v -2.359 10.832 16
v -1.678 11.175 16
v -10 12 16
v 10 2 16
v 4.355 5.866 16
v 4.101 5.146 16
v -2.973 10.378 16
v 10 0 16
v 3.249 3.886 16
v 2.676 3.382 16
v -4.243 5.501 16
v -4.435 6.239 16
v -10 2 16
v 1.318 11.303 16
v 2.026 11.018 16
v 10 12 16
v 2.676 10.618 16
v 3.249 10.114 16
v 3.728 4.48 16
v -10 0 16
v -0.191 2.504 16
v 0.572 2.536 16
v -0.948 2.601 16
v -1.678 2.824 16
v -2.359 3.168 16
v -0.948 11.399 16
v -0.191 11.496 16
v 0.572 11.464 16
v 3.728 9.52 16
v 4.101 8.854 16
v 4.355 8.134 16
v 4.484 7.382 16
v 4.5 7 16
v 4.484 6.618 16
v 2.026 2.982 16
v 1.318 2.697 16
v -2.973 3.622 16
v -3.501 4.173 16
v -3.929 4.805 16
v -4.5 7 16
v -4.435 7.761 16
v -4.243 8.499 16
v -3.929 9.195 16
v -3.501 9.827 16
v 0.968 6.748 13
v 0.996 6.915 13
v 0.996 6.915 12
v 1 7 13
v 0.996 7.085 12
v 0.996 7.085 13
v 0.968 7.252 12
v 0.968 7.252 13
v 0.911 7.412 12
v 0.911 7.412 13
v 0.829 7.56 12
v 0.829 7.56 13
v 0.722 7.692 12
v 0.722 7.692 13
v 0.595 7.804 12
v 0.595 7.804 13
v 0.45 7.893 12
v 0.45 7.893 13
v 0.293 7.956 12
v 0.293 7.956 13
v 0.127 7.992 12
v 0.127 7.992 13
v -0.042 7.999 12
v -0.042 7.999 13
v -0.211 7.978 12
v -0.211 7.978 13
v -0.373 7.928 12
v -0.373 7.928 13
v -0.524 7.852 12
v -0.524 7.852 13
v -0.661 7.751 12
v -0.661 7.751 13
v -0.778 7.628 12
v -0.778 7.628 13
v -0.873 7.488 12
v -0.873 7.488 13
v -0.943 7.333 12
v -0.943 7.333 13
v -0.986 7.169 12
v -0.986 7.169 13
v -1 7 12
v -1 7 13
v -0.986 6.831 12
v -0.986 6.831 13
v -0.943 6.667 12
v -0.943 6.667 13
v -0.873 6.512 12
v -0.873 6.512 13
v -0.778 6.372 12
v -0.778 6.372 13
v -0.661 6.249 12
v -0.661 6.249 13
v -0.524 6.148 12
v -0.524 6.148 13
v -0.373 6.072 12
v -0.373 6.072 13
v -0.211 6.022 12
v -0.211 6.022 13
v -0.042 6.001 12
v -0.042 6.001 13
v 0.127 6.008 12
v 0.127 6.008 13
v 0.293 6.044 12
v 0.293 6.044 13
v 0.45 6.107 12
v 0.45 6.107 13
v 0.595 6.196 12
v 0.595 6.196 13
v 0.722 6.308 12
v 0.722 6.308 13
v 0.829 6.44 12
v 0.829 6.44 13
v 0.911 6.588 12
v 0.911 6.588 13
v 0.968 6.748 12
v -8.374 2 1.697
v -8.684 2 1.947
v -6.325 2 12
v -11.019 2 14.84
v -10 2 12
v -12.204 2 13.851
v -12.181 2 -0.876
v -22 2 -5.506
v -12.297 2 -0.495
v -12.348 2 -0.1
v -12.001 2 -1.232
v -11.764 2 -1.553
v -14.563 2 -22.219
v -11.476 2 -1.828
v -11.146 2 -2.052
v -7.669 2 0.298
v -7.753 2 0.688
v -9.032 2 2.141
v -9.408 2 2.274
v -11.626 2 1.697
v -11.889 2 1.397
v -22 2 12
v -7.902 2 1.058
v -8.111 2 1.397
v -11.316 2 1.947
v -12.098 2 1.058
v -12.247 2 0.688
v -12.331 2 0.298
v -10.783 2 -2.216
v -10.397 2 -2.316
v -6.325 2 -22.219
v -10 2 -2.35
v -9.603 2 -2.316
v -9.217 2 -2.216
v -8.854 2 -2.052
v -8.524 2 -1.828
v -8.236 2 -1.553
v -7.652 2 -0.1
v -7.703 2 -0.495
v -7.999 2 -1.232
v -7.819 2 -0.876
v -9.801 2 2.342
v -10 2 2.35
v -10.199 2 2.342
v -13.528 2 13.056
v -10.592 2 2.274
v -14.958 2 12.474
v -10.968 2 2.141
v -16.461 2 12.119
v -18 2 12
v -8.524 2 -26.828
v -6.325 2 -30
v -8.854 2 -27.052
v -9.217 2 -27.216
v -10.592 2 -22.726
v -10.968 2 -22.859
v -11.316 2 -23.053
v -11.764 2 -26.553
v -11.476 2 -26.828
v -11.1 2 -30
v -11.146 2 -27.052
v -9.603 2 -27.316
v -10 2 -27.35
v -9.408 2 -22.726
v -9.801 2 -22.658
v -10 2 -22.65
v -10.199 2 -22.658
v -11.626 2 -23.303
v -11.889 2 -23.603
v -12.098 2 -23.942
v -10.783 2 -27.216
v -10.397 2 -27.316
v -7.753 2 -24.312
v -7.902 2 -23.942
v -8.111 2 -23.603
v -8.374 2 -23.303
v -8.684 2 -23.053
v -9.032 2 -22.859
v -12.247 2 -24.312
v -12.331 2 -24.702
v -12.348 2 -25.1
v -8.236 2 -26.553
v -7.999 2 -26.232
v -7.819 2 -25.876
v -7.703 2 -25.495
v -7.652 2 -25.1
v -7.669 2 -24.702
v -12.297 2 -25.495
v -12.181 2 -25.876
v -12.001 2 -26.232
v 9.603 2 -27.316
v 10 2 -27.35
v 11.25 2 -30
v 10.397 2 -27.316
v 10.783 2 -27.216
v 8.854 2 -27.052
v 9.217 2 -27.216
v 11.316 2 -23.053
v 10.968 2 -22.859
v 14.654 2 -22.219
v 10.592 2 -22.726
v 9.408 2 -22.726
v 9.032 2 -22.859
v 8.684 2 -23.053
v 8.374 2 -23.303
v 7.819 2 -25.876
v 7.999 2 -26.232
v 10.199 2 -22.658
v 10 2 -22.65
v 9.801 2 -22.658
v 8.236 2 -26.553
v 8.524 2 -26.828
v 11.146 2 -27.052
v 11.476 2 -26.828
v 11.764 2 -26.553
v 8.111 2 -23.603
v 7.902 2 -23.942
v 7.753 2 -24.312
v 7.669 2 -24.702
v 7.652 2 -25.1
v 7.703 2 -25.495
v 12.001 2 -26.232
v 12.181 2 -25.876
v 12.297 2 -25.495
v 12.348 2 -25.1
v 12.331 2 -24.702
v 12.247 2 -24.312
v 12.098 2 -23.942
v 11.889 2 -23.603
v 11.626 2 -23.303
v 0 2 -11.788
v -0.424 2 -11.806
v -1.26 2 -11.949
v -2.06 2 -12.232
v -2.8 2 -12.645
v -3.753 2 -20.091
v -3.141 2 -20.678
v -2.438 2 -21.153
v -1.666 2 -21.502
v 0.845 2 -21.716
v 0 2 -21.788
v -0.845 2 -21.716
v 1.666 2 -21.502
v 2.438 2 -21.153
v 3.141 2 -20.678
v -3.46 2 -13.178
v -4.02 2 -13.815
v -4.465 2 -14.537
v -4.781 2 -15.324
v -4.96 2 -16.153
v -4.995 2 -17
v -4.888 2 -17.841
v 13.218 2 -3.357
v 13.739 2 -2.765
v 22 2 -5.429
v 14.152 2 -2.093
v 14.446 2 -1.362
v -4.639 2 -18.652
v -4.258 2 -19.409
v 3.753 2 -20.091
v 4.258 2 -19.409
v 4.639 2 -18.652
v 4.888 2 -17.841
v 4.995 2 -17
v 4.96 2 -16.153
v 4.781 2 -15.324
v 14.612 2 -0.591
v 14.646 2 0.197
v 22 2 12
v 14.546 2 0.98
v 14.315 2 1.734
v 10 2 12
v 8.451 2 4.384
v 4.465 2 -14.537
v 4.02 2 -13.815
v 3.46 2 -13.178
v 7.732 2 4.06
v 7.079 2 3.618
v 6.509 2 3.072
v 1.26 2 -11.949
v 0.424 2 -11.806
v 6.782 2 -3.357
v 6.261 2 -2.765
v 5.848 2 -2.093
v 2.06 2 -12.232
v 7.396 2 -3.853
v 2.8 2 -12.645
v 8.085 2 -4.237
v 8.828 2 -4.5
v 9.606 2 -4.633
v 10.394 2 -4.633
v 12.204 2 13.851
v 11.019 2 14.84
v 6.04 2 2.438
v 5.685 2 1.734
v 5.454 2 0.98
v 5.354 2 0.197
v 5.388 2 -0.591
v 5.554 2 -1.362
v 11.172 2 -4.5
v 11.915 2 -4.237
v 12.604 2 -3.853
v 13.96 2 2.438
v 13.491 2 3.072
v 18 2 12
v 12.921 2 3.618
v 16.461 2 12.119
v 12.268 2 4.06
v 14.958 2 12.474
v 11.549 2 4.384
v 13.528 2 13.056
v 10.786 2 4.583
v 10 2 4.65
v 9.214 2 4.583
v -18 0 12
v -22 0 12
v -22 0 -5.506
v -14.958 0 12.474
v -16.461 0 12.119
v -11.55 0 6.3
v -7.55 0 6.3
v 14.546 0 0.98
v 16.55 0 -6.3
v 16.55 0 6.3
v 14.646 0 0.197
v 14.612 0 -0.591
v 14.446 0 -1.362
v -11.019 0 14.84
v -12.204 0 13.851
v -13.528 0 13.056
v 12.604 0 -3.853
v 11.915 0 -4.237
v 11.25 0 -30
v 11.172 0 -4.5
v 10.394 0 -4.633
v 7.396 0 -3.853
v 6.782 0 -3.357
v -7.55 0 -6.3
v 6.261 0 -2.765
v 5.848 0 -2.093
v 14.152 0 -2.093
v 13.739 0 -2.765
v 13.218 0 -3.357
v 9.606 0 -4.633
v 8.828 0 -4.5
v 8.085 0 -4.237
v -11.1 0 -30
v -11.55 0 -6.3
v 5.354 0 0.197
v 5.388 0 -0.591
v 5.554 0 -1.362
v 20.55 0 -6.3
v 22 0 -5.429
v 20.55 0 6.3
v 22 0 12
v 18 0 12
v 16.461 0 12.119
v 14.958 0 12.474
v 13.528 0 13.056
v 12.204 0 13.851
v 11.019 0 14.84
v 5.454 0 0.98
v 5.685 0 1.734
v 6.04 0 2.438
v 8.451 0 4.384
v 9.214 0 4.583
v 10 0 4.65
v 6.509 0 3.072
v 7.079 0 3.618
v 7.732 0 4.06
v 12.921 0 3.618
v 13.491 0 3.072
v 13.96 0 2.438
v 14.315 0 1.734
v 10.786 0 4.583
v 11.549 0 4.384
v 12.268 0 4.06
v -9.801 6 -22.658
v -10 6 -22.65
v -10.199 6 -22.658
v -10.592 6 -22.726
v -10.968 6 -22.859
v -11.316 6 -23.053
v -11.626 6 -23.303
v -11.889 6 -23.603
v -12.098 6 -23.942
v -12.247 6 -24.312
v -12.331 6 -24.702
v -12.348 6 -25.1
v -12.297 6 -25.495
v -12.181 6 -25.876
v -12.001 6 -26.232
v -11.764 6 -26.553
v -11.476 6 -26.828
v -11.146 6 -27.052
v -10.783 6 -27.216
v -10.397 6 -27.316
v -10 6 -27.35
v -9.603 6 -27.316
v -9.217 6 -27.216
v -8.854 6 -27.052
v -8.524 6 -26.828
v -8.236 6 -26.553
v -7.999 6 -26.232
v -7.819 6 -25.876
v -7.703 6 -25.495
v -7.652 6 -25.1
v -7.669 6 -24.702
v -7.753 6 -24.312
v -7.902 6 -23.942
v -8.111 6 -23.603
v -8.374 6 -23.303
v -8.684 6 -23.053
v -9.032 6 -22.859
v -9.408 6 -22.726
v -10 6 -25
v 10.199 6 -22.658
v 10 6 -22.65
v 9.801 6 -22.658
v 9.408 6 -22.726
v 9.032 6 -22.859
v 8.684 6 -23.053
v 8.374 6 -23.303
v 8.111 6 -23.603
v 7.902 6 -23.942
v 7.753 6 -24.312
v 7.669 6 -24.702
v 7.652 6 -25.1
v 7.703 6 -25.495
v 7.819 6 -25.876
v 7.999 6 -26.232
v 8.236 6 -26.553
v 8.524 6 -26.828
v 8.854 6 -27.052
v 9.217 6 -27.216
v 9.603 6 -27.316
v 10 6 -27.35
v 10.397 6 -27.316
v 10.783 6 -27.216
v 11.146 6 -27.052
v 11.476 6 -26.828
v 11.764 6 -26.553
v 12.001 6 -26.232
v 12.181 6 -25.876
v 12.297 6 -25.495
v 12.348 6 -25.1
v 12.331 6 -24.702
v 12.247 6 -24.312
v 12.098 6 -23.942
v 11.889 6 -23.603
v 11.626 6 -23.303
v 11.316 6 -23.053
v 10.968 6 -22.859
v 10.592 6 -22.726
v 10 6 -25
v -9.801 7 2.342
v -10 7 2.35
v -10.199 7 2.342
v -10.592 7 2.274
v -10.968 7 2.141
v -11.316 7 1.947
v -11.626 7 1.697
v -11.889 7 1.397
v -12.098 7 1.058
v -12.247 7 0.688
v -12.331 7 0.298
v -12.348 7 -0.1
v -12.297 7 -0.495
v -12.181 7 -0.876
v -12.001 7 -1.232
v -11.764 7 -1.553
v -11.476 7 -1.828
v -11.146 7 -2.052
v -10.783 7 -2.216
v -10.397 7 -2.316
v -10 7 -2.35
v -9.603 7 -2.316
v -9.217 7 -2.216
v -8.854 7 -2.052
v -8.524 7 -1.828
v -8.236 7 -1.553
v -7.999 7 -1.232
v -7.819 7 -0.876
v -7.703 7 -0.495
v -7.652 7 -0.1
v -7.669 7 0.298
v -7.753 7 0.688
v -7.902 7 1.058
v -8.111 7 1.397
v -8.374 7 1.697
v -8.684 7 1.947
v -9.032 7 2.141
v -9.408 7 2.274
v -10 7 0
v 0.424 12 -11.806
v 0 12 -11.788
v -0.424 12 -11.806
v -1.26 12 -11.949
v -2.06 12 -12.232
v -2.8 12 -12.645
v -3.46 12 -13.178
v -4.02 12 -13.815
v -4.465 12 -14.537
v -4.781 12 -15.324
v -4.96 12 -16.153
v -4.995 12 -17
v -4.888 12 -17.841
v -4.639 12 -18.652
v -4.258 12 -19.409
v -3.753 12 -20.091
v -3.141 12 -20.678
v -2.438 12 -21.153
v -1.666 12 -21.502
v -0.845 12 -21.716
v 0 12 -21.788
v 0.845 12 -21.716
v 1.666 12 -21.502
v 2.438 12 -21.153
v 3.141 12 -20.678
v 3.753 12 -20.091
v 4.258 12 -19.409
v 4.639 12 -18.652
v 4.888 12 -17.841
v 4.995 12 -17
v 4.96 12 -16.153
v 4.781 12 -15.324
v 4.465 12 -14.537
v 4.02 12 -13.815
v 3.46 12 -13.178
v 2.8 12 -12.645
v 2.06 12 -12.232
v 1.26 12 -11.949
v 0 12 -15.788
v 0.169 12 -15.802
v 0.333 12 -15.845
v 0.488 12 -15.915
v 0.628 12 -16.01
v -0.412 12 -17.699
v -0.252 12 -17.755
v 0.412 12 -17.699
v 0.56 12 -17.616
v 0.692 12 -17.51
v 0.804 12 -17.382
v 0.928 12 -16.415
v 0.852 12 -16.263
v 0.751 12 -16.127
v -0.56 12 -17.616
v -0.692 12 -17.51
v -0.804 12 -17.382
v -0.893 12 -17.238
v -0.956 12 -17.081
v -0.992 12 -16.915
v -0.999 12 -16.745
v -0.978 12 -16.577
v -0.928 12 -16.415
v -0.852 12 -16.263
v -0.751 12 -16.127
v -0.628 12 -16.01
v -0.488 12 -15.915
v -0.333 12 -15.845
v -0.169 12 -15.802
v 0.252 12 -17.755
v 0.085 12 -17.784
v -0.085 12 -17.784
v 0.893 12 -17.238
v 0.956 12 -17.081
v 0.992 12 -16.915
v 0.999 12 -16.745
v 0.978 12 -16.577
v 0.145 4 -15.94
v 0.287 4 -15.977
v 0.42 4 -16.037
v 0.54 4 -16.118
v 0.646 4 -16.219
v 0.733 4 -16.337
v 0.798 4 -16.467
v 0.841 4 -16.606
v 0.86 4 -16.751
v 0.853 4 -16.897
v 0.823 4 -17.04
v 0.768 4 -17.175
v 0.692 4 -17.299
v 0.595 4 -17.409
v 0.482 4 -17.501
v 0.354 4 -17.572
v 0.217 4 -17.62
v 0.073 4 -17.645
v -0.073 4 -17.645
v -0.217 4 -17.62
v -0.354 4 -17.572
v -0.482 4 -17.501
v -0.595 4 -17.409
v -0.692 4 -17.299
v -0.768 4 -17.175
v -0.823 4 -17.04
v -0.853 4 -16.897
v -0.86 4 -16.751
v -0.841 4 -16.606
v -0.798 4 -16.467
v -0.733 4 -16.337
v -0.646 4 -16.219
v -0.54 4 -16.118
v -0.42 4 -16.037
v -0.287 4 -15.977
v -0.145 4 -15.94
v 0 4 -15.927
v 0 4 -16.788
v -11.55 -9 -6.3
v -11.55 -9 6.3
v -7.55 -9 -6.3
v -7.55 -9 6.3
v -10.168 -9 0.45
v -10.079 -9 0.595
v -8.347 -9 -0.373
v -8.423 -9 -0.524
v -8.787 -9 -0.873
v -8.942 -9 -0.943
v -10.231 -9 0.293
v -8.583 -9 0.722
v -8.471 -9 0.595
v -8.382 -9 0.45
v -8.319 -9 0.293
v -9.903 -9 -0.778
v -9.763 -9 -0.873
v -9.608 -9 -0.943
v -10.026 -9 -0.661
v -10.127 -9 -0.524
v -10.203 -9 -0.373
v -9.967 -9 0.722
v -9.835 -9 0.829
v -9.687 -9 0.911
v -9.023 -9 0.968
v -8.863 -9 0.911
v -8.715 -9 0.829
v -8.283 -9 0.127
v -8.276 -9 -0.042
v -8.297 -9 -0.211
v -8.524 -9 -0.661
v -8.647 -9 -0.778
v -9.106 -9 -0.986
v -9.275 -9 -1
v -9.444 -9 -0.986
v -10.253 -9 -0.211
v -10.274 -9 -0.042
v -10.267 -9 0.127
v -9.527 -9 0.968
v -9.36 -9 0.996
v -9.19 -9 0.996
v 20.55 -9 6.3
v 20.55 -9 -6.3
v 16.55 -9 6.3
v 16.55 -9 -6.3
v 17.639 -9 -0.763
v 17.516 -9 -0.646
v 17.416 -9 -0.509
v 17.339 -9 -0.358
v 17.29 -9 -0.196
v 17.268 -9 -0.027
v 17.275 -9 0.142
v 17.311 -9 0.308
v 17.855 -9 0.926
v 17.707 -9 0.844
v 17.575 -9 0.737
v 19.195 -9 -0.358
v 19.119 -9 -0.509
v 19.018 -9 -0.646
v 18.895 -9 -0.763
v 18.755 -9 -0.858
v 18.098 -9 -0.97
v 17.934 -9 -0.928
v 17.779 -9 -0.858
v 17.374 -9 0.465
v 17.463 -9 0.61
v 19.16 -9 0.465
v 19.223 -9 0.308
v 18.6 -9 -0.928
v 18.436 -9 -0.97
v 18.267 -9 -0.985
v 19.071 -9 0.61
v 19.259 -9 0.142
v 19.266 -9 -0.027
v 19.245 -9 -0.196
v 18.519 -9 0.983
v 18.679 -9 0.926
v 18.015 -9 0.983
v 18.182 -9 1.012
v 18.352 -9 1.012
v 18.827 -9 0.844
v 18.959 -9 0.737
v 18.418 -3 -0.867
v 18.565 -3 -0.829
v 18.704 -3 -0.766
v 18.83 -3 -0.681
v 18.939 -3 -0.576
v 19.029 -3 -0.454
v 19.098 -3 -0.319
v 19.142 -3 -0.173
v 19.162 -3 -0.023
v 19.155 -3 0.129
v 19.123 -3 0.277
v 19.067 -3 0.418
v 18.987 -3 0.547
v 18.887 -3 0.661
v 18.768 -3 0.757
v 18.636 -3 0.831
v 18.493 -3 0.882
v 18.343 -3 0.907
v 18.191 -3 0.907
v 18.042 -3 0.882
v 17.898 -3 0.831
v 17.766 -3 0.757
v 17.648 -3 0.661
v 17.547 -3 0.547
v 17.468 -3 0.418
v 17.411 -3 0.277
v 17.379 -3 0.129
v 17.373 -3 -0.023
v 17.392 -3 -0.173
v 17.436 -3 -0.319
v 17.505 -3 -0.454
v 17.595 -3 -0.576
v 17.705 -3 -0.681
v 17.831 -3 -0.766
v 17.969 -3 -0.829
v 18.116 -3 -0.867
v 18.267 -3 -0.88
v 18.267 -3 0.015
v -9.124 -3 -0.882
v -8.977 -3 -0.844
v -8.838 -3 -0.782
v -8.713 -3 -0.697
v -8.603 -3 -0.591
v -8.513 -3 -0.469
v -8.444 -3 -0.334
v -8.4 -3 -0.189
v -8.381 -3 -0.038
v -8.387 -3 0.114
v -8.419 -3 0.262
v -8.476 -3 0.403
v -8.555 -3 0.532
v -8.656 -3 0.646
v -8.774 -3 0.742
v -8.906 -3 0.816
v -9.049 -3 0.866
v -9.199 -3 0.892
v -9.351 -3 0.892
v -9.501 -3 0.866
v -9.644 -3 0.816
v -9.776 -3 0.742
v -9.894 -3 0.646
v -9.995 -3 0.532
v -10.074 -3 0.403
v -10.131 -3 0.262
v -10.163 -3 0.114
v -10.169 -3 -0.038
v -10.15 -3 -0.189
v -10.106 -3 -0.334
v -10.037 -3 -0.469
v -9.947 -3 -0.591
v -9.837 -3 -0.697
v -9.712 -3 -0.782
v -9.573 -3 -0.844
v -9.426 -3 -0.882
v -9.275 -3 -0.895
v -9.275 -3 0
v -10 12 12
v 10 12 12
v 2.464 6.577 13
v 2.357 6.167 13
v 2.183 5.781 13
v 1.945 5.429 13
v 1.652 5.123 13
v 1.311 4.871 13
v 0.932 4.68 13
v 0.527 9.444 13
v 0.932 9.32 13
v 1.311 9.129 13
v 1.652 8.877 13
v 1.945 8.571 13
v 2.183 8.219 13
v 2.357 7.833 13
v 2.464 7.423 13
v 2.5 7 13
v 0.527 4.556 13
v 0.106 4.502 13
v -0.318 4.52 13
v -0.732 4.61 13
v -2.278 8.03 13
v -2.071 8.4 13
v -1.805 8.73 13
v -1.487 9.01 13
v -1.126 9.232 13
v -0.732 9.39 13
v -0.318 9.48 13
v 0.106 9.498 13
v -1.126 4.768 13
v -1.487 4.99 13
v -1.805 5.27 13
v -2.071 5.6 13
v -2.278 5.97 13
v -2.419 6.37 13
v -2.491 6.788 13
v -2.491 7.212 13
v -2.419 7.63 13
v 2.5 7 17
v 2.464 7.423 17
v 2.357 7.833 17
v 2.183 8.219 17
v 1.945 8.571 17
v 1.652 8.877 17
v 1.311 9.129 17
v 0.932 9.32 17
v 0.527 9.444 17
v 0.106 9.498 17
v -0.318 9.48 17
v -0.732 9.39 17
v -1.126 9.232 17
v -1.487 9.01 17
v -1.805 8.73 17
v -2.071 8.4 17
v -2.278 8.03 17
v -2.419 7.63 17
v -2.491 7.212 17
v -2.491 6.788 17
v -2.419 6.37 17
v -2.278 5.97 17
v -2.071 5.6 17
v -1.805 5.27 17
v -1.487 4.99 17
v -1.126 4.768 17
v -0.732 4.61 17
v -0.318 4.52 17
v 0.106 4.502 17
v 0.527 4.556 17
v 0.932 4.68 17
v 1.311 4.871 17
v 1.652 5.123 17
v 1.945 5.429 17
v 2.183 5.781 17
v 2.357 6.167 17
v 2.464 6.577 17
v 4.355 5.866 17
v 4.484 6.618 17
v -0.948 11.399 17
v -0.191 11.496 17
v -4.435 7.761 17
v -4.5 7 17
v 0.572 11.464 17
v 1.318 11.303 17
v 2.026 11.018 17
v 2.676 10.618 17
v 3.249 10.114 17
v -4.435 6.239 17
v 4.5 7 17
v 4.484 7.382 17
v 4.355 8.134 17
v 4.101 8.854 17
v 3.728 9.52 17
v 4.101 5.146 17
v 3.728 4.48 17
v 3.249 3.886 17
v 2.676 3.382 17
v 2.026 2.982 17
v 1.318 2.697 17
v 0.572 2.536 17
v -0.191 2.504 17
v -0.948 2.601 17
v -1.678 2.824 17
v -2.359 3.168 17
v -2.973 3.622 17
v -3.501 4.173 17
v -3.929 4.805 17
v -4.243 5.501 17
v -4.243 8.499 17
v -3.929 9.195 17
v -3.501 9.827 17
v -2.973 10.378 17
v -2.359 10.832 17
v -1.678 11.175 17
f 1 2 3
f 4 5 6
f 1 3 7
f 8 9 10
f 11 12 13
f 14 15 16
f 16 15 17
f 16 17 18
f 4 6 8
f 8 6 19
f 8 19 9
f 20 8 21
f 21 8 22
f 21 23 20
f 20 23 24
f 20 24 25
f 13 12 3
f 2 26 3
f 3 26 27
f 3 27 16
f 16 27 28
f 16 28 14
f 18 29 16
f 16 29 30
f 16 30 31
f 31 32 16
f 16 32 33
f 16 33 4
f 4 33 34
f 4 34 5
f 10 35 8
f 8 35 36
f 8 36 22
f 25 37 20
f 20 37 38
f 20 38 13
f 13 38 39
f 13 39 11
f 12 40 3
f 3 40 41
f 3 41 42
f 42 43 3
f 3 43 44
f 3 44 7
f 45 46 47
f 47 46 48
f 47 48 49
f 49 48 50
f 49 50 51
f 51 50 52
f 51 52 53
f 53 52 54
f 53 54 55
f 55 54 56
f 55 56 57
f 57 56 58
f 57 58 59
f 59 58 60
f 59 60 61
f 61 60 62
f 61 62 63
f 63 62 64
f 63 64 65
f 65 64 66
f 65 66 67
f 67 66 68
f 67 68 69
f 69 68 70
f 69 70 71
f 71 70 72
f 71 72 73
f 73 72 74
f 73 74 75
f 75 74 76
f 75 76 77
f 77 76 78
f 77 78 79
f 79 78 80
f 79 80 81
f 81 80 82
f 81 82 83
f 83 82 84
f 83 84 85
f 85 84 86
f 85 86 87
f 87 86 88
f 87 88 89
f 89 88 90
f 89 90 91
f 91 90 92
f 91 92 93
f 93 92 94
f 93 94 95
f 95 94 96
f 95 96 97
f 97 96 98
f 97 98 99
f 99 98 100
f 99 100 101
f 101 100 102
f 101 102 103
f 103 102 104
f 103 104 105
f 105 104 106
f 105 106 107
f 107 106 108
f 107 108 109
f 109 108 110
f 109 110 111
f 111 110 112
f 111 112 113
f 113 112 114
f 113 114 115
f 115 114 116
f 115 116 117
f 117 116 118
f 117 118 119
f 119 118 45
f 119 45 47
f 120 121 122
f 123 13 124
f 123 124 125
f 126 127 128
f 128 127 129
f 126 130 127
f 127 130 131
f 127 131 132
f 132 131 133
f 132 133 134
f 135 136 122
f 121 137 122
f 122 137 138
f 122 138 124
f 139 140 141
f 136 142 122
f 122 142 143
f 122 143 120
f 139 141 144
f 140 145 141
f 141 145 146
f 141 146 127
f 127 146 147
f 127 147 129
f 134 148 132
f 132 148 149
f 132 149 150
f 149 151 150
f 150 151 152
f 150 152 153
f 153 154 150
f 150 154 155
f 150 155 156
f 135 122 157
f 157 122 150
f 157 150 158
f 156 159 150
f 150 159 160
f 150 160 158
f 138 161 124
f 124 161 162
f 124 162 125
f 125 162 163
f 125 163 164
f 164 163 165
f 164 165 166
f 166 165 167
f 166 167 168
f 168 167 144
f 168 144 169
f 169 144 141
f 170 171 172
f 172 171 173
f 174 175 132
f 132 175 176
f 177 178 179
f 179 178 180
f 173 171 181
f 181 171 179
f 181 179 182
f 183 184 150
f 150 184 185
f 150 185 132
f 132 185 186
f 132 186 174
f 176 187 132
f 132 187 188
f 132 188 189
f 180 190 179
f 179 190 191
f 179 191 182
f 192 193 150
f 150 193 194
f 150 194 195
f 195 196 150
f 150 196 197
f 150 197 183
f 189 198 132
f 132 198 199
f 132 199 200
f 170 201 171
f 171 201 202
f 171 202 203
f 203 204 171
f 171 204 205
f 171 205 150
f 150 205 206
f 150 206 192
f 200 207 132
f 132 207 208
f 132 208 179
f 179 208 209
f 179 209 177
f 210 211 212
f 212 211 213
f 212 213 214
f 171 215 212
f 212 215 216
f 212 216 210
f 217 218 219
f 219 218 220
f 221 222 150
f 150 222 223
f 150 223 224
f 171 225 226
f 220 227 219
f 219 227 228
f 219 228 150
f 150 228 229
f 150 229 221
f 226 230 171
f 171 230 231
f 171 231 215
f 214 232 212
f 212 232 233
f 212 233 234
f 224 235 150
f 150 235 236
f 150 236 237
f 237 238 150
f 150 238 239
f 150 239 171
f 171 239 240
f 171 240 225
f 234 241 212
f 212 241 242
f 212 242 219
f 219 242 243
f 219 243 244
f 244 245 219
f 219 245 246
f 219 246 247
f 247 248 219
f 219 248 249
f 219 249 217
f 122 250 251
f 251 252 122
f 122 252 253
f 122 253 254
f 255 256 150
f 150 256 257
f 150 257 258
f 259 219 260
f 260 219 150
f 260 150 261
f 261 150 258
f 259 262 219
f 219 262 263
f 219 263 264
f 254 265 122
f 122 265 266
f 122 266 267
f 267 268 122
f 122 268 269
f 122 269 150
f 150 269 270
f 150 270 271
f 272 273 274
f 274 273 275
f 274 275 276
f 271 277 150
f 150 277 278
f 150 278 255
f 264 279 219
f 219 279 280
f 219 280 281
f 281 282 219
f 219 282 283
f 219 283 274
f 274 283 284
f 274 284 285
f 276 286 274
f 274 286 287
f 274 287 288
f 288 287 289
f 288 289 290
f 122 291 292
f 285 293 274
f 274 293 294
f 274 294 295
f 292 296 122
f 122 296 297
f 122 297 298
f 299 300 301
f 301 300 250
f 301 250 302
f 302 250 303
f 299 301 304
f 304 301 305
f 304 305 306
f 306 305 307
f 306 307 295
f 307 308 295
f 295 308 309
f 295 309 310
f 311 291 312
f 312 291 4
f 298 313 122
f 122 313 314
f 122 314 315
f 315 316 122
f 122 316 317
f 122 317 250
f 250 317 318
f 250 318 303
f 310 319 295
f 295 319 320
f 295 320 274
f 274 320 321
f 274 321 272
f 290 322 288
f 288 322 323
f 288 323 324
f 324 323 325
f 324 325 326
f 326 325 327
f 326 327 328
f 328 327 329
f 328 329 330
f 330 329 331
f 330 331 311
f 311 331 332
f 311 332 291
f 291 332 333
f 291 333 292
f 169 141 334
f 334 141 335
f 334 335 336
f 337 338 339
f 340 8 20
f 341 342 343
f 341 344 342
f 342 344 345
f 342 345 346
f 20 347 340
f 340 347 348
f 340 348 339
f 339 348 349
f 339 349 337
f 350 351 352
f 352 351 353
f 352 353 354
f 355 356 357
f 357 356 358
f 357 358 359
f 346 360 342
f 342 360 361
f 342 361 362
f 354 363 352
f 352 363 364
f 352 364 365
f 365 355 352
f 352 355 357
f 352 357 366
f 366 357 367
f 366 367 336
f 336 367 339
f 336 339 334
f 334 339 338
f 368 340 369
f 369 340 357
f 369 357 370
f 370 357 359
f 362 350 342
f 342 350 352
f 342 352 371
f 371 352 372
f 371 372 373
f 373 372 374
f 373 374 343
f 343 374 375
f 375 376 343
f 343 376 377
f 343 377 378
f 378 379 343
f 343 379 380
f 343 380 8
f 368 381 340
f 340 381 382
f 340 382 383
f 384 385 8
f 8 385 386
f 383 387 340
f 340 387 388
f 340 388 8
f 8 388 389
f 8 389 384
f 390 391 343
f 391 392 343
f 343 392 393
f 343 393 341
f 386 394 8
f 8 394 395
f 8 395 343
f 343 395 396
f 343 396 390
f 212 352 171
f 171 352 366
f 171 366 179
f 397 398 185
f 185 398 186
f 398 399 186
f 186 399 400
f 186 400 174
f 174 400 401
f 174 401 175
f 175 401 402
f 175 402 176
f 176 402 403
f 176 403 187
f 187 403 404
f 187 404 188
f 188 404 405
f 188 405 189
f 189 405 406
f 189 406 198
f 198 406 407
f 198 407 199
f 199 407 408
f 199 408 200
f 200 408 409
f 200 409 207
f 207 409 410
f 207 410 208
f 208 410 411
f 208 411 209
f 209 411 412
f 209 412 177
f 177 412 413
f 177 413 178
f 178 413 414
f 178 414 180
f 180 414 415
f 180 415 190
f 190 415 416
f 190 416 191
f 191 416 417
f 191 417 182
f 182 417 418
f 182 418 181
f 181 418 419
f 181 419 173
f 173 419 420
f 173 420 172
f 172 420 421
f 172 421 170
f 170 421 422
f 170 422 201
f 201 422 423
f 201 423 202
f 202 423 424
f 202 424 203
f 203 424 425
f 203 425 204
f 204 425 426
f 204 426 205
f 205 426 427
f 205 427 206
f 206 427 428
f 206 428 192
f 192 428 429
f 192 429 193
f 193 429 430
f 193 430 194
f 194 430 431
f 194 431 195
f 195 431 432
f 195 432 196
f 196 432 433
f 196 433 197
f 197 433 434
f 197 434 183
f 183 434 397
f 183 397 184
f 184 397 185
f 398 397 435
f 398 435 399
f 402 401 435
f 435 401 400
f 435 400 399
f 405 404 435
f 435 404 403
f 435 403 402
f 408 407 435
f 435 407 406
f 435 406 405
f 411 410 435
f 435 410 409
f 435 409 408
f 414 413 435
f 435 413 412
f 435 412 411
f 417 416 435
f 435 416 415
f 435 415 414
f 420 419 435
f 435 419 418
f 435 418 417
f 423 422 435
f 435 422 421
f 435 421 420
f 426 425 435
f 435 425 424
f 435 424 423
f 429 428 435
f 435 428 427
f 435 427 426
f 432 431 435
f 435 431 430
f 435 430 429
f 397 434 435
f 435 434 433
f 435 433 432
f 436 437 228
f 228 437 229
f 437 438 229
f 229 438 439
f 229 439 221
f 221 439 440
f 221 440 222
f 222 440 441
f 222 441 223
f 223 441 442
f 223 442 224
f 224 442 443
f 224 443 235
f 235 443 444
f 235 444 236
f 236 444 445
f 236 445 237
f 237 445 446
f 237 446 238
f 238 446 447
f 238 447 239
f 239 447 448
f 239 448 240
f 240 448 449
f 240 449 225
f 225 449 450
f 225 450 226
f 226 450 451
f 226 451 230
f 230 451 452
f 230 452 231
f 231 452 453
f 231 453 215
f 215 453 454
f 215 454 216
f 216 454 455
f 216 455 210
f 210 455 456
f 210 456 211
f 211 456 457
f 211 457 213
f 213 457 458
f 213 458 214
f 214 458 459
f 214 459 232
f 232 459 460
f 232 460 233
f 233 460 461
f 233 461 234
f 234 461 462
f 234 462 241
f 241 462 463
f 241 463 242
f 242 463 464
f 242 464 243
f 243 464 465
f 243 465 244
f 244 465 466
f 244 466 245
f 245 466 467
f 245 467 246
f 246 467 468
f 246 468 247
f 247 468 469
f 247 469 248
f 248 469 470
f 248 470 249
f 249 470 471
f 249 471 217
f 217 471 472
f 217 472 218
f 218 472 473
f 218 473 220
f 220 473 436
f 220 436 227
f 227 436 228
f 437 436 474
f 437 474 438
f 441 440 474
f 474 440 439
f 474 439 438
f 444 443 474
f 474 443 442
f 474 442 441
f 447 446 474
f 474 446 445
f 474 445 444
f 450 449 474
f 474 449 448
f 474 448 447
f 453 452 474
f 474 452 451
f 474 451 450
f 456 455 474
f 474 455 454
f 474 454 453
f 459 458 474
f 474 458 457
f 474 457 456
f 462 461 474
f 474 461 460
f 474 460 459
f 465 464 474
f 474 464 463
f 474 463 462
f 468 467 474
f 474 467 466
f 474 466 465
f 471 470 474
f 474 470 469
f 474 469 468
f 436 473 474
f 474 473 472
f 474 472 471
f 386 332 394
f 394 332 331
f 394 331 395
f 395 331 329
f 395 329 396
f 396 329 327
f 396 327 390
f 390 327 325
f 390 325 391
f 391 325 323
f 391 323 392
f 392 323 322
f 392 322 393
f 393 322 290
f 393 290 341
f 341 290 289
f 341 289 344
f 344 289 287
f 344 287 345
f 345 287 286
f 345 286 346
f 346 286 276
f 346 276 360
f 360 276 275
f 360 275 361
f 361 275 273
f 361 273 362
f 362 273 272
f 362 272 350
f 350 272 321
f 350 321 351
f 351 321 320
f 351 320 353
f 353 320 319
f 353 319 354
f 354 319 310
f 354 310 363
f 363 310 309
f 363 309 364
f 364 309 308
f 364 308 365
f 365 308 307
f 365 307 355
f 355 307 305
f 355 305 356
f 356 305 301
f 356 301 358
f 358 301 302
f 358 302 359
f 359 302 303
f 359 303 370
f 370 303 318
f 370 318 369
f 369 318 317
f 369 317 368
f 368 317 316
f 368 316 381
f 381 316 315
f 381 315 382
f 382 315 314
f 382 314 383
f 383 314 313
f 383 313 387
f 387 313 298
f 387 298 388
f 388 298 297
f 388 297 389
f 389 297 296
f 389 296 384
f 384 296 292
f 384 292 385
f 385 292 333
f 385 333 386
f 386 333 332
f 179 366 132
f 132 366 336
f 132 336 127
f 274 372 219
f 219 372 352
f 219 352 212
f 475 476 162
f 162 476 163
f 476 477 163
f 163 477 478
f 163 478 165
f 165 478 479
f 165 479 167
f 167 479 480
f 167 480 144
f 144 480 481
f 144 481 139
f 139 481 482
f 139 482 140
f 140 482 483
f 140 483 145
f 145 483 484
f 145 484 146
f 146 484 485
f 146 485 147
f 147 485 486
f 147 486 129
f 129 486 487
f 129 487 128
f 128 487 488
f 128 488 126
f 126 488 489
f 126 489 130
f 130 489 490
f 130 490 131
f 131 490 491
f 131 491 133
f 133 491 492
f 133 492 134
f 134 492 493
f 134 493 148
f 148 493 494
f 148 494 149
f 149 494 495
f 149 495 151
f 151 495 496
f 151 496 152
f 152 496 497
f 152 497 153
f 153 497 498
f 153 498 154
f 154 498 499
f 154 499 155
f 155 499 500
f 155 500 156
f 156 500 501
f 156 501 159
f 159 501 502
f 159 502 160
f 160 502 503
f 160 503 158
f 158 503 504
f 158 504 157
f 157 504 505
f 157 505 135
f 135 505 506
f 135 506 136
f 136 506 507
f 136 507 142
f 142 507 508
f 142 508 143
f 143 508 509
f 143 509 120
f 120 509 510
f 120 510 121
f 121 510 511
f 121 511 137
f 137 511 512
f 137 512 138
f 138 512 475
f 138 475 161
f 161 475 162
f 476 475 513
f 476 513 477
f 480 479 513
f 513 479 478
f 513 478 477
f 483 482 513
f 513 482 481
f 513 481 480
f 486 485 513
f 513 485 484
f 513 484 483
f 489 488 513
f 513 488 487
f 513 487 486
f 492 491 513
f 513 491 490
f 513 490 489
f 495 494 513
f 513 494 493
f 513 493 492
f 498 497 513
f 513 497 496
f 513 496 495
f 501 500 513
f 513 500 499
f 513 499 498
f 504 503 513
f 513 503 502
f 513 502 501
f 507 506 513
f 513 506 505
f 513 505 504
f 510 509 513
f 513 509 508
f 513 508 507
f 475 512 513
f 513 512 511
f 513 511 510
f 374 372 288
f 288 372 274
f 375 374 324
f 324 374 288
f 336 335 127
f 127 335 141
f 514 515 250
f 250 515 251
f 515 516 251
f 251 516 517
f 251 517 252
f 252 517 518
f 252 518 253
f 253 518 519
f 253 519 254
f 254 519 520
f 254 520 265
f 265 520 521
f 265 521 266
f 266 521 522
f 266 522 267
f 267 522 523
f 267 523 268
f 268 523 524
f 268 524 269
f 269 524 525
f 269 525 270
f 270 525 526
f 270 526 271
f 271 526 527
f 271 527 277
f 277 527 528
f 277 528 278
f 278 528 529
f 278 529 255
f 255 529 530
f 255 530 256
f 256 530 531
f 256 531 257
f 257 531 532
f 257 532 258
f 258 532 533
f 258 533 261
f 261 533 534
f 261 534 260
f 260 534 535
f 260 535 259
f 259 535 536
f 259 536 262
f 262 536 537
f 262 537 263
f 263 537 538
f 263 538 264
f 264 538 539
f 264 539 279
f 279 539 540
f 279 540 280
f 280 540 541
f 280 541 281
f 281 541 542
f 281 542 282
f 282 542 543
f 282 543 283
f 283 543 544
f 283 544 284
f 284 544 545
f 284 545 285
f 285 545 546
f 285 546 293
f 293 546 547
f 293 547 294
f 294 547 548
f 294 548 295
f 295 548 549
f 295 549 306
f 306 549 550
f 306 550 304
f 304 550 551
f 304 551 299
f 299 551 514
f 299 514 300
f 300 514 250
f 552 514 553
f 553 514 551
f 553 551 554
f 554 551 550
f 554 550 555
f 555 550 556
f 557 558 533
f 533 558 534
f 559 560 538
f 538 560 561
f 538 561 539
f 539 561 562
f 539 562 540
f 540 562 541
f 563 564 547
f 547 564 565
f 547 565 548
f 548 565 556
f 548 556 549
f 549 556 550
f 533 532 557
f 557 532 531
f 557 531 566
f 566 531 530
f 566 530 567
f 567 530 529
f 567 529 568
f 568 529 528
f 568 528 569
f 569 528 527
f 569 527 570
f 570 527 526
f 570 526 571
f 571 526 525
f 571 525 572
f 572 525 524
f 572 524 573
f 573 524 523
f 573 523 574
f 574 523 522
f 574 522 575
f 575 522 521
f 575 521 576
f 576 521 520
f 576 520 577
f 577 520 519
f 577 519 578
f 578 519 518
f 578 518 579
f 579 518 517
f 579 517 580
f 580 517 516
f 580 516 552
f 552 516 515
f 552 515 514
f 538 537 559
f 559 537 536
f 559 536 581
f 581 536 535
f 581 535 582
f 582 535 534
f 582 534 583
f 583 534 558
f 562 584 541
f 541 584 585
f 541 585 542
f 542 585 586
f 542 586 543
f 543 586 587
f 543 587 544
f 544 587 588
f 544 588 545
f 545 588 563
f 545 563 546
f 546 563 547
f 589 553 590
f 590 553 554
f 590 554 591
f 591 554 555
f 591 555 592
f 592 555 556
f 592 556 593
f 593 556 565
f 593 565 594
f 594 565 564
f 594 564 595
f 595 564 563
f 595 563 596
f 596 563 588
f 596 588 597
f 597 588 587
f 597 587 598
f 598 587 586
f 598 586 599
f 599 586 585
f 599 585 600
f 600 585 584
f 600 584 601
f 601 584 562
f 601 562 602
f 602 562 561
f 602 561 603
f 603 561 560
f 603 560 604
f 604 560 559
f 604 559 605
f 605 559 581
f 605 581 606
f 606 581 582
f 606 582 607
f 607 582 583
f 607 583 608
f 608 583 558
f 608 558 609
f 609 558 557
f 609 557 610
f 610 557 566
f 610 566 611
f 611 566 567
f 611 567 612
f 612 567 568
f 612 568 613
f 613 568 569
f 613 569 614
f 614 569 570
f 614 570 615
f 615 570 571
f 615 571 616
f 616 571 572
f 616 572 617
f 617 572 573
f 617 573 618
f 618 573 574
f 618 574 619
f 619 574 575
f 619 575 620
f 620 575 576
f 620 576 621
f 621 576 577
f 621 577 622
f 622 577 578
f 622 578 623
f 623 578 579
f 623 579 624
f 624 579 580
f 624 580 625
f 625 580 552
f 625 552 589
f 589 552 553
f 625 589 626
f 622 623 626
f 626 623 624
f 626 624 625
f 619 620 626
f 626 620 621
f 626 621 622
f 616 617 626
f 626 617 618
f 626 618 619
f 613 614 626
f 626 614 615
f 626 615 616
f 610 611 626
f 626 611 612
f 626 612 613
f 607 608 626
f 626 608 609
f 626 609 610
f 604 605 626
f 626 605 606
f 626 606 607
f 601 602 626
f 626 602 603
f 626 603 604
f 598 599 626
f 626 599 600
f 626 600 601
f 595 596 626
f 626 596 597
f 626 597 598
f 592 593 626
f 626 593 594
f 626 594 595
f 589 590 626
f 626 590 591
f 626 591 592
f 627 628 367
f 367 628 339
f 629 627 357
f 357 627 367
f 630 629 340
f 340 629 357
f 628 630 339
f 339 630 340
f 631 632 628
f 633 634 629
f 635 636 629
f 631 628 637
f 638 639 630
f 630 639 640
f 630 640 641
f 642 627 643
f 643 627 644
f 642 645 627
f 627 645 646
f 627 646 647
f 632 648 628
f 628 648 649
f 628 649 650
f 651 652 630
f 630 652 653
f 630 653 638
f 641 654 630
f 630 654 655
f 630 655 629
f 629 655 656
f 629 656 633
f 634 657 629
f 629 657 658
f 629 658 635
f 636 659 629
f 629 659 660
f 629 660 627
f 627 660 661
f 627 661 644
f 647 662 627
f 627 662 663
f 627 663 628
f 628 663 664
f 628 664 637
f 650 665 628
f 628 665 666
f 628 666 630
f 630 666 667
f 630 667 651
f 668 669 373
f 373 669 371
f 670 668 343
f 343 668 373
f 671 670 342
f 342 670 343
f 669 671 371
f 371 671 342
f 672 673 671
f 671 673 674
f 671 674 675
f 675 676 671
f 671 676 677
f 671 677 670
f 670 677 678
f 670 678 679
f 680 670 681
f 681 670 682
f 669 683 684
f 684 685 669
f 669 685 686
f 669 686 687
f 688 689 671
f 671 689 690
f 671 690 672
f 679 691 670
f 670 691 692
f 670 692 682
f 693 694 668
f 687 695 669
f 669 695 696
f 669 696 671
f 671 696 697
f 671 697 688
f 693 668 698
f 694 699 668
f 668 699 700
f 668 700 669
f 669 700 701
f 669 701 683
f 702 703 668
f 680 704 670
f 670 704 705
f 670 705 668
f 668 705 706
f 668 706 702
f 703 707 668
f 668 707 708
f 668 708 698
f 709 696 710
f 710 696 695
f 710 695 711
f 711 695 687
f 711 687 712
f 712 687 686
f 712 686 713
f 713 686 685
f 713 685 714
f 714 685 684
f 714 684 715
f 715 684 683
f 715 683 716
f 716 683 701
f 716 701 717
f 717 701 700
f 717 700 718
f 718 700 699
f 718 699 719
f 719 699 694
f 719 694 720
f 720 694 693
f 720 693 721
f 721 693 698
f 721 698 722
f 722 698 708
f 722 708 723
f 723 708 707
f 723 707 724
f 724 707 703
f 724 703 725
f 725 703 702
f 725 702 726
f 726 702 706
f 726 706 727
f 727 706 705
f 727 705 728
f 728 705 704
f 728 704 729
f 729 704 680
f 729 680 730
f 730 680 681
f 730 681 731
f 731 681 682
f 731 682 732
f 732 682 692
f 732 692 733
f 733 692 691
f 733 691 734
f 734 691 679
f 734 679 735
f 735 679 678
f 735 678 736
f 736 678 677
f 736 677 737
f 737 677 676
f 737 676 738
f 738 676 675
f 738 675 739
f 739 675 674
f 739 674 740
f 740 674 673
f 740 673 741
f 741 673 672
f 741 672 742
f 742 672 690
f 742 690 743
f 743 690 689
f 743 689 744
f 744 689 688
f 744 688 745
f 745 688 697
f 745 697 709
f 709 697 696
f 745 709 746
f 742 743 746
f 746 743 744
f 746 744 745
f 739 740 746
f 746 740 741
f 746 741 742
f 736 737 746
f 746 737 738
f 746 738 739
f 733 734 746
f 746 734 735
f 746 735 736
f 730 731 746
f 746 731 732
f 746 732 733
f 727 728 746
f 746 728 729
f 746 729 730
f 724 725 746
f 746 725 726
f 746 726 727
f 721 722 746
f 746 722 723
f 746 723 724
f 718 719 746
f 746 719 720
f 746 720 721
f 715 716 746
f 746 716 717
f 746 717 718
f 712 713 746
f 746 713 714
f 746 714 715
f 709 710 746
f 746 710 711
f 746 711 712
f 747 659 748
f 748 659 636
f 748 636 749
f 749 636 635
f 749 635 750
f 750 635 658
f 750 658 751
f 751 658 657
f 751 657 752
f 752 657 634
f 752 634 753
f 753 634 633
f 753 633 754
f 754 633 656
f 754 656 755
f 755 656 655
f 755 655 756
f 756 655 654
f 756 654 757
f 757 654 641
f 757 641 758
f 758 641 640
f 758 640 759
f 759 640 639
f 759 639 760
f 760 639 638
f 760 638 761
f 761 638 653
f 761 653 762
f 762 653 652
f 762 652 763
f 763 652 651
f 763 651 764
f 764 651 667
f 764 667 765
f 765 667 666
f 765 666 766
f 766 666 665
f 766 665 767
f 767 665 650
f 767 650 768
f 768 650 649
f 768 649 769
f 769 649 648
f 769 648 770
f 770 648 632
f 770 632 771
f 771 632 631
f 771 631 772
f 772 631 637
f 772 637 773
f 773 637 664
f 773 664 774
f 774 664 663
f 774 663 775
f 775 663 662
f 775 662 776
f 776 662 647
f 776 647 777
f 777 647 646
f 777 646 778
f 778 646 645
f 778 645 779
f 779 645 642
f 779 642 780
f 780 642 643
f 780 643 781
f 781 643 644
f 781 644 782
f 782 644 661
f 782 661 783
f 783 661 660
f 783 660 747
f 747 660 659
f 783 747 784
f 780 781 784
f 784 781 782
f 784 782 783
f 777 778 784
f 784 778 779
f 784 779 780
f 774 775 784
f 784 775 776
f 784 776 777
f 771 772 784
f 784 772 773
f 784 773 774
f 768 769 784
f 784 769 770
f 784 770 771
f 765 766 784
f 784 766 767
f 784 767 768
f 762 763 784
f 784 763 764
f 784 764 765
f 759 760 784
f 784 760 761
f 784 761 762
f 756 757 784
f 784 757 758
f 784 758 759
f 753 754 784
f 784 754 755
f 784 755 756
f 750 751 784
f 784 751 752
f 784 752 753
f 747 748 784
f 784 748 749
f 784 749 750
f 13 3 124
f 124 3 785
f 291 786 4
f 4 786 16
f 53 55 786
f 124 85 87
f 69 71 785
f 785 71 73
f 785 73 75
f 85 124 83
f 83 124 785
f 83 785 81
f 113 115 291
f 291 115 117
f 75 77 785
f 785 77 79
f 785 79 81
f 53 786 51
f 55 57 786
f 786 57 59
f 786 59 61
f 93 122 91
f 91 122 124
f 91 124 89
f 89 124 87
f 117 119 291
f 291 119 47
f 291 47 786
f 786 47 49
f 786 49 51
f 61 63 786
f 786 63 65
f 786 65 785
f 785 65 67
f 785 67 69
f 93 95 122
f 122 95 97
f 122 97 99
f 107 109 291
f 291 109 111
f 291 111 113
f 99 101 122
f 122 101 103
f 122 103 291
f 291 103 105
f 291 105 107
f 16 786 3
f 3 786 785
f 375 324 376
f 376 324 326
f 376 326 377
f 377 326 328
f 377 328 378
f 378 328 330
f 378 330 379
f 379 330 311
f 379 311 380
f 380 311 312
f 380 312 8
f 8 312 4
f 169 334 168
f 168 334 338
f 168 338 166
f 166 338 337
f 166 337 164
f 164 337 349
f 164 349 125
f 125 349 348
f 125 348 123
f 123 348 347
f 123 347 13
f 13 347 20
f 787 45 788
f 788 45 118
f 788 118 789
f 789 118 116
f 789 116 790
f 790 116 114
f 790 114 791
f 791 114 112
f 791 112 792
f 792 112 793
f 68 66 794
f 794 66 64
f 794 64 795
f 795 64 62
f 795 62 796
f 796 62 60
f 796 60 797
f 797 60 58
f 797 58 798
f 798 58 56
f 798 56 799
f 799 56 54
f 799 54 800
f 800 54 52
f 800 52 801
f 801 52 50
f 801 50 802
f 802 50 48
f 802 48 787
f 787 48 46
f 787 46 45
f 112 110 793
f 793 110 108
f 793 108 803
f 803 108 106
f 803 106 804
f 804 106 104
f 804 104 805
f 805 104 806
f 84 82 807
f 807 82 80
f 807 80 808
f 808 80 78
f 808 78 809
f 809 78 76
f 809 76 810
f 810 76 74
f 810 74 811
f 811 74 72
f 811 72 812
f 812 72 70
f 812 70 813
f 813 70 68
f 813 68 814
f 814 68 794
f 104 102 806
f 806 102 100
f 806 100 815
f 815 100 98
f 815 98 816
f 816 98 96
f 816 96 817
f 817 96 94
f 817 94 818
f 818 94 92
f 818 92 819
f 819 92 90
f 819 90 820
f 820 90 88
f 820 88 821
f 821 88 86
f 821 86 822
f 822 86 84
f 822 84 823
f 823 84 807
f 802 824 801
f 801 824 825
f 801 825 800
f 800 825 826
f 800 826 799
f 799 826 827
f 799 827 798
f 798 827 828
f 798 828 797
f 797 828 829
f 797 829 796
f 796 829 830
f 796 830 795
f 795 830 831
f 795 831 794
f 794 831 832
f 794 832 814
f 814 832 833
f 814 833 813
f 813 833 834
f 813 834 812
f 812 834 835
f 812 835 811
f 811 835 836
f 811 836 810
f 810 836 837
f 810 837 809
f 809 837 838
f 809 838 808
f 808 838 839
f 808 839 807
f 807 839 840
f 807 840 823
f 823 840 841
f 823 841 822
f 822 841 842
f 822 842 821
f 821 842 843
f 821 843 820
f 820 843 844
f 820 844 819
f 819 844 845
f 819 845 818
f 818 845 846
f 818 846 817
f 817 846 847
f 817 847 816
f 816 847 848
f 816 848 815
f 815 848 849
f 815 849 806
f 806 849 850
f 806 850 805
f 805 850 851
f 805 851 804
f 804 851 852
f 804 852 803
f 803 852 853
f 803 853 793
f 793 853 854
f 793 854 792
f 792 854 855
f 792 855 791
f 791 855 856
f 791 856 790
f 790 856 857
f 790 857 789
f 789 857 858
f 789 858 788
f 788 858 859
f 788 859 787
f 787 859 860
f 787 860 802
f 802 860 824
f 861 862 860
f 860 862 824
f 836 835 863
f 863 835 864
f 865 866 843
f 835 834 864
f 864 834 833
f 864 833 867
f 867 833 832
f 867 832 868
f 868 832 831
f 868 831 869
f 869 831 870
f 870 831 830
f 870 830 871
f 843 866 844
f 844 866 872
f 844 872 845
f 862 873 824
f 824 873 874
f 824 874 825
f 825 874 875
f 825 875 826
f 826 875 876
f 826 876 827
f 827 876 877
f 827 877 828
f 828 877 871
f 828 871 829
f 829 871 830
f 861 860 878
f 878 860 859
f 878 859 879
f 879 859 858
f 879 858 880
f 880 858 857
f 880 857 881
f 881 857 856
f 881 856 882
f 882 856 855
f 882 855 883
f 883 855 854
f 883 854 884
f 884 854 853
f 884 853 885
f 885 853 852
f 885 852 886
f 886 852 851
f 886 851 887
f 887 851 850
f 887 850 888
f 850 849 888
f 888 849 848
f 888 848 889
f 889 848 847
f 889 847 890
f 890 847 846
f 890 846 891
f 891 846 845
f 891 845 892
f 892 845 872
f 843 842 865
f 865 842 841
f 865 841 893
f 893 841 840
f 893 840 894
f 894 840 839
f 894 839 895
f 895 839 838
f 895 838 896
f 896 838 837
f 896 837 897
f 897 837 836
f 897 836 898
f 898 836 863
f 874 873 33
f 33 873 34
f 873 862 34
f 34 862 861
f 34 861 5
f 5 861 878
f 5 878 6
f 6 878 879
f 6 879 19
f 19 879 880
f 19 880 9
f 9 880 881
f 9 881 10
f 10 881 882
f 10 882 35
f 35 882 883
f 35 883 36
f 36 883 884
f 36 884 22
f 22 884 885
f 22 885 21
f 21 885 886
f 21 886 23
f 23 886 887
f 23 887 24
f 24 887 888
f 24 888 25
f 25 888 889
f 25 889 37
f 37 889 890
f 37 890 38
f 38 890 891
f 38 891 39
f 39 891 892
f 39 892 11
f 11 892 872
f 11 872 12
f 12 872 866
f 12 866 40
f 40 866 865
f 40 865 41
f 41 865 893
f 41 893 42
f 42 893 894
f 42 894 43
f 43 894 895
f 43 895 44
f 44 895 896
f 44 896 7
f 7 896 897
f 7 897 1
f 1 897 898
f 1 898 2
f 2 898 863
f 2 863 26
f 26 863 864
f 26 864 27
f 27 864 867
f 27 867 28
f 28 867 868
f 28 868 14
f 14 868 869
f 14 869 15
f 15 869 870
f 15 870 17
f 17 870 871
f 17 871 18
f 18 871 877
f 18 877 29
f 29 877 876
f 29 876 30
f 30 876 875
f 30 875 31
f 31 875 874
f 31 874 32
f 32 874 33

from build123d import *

# Parameters (mm, degrees)
SKETCH1_W                     = 40
SKETCH1_H                     = 20
BOSS_EXTRUDE1_DEPTH           = 2
SKETCH5_W                     = 50
SKETCH5_H                     = 20
BOSS_EXTRUDE4_DEPTH           = 2
SKETCH6_R                     = 2.35
BOSS_EXTRUDE5_DEPTH           = 4
SKETCH15_R                    = 4.65
CUT_EXTRUDE6_DEPTH            = 6
SKETCH17_W                    = 10
SKETCH17_H                    = 20
CUT_EXTRUDE8_DEPTH            = 43.614551505
CUT_EXTRUDE9_DEPTH            = 2
SKETCH19_R                    = 2.35
BOSS_EXTRUDE6_DEPTH           = 5
BOSS_EXTRUDE7_DEPTH           = 2
SKETCH21_R                    = 5
BOSS_EXTRUDE8_DEPTH           = 10
SKETCH22_R                    = 1
CUT_EXTRUDE10_DEPTH           = 8
CUT_EXTRUDE10_DRAFT           = -1
SKETCH23_W                    = 4
SKETCH23_H                    = 12.6
SKETCH23_H_2                  = 12.600139219
BOSS_EXTRUDE9_DEPTH           = 9
SKETCH24_R                    = 1
CUT_EXTRUDE11_DEPTH           = 6
CUT_EXTRUDE11_DRAFT           = -1
CUT_EXTRUDE11_PROFILE_2_DEPTH = 6
CUT_EXTRUDE11_PROFILE_2_DRAFT = -1
SKETCH25_W                    = 20
SKETCH25_H                    = 2
BOSS_EXTRUDE10_DEPTH          = 4
SKETCH26_W                    = 20
SKETCH26_H                    = 4
BOSS_EXTRUDE11_DEPTH          = 10
FILLET1_R                     = 10
SKETCH27_R                    = 1
CUT_EXTRUDE13_DEPTH           = 49.908077043
SKETCH28_R                    = 2.5
CUT_EXTRUDE14_DEPTH           = 3
BOSS_EXTRUDE12_START          = 1
SKETCH29_R                    = 4.5
SKETCH29_R_2                  = 2.5
BOSS_EXTRUDE12_DEPTH          = 1


with BuildPart() as part:
    # Sketch1 → Boss-Extrude1 (new body)
    with BuildSketch(Plane(origin=(0, 0, 0), x_dir=(1, 0, 0), z_dir=(0, 1, 0))):
        Rectangle(SKETCH1_W, SKETCH1_H)
    extrude(amount=BOSS_EXTRUDE1_DEPTH)

    # Sketch5 → Boss-Extrude4 (add)
    with BuildSketch(Plane(origin=(0, 2, 0), x_dir=(1, 0, 0), z_dir=(0, 1, 0))):
        with Locations((5, 20)):
            Rectangle(SKETCH5_W, SKETCH5_H)
    extrude(amount=-BOSS_EXTRUDE4_DEPTH)

    # Sketch6 → Boss-Extrude5 (add)
    with BuildSketch(Plane(origin=(0, 2, 0), x_dir=(1, 0, 0), z_dir=(0, 1, 0))):
        with Locations(Location((-10, 25, 0), (0, 0, 270))):
            Circle(SKETCH6_R)
        with Locations(Location((10, 25, 0), (0, 0, 270))):
            Circle(SKETCH6_R)
    extrude(amount=BOSS_EXTRUDE5_DEPTH)

    # Sketch15 → Cut-Extrude6 (cut)
    with BuildSketch(Plane(origin=(0, 2, 0), x_dir=(1, 0, 0), z_dir=(0, 1, 0))):
        with Locations(Location((10, 0, 0), (0, 0, 270))):
            Circle(SKETCH15_R)
    extrude(amount=-CUT_EXTRUDE6_DEPTH, mode=Mode.SUBTRACT)

    # Sketch17 → Cut-Extrude8 (cut, through all)
    with BuildSketch(Plane(origin=(0, 2, 0), x_dir=(1, 0, 0), z_dir=(0, 1, 0))):
        with Locations((25, 20)):
            Rectangle(SKETCH17_W, SKETCH17_H)
    extrude(amount=-CUT_EXTRUDE8_DEPTH, mode=Mode.SUBTRACT)

    # Sketch18 → Cut-Extrude9 (cut)
    with BuildSketch(Plane(origin=(0, 2, 0), x_dir=(1, 0, 0), z_dir=(0, 1, 0))):
        Polygon((-11.1, 30), (-20, 10), (-20, 30), align=None)
        Polygon((20, 10), (11.25, 30), (20, 30), align=None)
    extrude(amount=-CUT_EXTRUDE9_DEPTH, mode=Mode.SUBTRACT)

    # Sketch19 → Boss-Extrude6 (add)
    with BuildSketch(Plane(origin=(0, 2, 0), x_dir=(1, 0, 0), z_dir=(0, 1, 0))):
        with Locations(Location((-10, 0, 0), (0, 0, 270))):
            Circle(SKETCH19_R)
    extrude(amount=BOSS_EXTRUDE6_DEPTH)

    # Sketch20 → Boss-Extrude7 (add)
    with BuildSketch(Plane(origin=(0, 2, 0), x_dir=(1, 0, 0), z_dir=(0, 1, 0))):
        Polygon((-20, 10), (-22, 5.505617978), (-22, -12), (-20, -12), (20, -12), (22, -12), (22, 5.428571429), (20, 10), (20, -10), (-20, -10), align=None)
    extrude(amount=-BOSS_EXTRUDE7_DEPTH)

    # Sketch21 → Boss-Extrude8 (add)
    with BuildSketch(Plane(origin=(0, 2, 0), x_dir=(1, 0, 0), z_dir=(0, 1, 0))):
        with Locations(Location((0, 16.787751337, 0), (0, 0, 270))):
            Circle(SKETCH21_R)
    extrude(amount=BOSS_EXTRUDE8_DEPTH)


with BuildPart() as cut_extrude10_tool:
    # Sketch22 → Cut-Extrude10 (with draft: the straight prism first)
    with BuildSketch(Plane(origin=(0, 12, 0), x_dir=(1, 0, 0), z_dir=(0, 1, 0))):
        with Locations((0, 16.787751337)):
            Circle(SKETCH22_R)
    extrude(amount=-CUT_EXTRUDE10_DEPTH)
    # Cut-Extrude10: the draft: its side faces are tilted about the plane it starts from
    cut_extrude10_sides = [cut_extrude10_tool.faces().sort_by_distance(p)[0] for p in [
        (-1, 8, -16.787751337),
    ]]
    draft(cut_extrude10_sides, Plane(origin=(0, 12, 0), x_dir=(1, 0, 0), z_dir=(0, 1, 0)), CUT_EXTRUDE10_DRAFT)


with BuildPart() as part_1:
    add(part.part)

    # Cut-Extrude10: cut by cut_extrude10_tool
    add(cut_extrude10_tool.part, mode=Mode.SUBTRACT)

    # Sketch23 → Boss-Extrude9 (add)
    with BuildSketch(Plane.XZ):
        with Locations((-9.55, 0)):
            Rectangle(SKETCH23_W, SKETCH23_H)
        with Locations((18.549999997, 8.8752e-05)):
            Rectangle(SKETCH23_W, SKETCH23_H_2)
    extrude(amount=BOSS_EXTRUDE9_DEPTH)


with BuildPart() as cut_extrude11_tool:
    # Sketch24 → Cut-Extrude11 (with draft: the straight prism first)
    with BuildSketch(Plane.XZ.offset(9)):
        with Locations((18.267131572, 0.01512814)):
            Circle(SKETCH24_R)
    extrude(amount=-CUT_EXTRUDE11_DEPTH)
    # Cut-Extrude11: the draft: its side faces are tilted about the plane it starts from
    cut_extrude11_sides = [cut_extrude11_tool.faces().sort_by_distance(p)[0] for p in [
        (17.267131572, -6, 0.01512814),
    ]]
    draft(cut_extrude11_sides, Plane.XZ.offset(9), CUT_EXTRUDE11_DRAFT)


with BuildPart() as part_2:
    add(part_1.part)

    # Cut-Extrude11: cut by cut_extrude11_tool
    add(cut_extrude11_tool.part, mode=Mode.SUBTRACT)


with BuildPart() as cut_extrude11_profile_2_tool:
    # Sketch24 → Cut-Extrude11 profile 2 (with draft: the straight prism first)
    with BuildSketch(Plane.XZ.offset(9)):
        with Locations((-9.275, 0)):
            Circle(SKETCH24_R)
    extrude(amount=-CUT_EXTRUDE11_PROFILE_2_DEPTH)
    # Cut-Extrude11 profile 2: the draft: its side faces are tilted about the plane it starts from
    cut_extrude11_profile_2_sides = [cut_extrude11_profile_2_tool.faces().sort_by_distance(p)[0] for p in [
        (-10.275, -6, 0),
    ]]
    draft(cut_extrude11_profile_2_sides, Plane.XZ.offset(9), CUT_EXTRUDE11_PROFILE_2_DRAFT)


with BuildPart() as part_3:
    add(part_2.part)

    # Cut-Extrude11 profile 2: cut by cut_extrude11_profile_2_tool
    add(cut_extrude11_profile_2_tool.part, mode=Mode.SUBTRACT)

    # Sketch25 → Boss-Extrude10 (add)
    with BuildSketch(Plane.XY.offset(12)):
        with Locations((0, 1)):
            Rectangle(SKETCH25_W, SKETCH25_H)
    extrude(amount=BOSS_EXTRUDE10_DEPTH)

    # Sketch26 → Boss-Extrude11 (add)
    with BuildSketch(Plane(origin=(0, 2, 0), x_dir=(1, 0, 0), z_dir=(0, 1, 0))):
        with Locations((0, -14)):
            Rectangle(SKETCH26_W, SKETCH26_H)
    extrude(amount=BOSS_EXTRUDE11_DEPTH)

    # Fillet1
    # the kernel refuses this fillet: 10 mm, written as the material it adds along each edge
    with BuildSketch(Plane(origin=(10, 2, 12), x_dir=(0, 0, 1), z_dir=(0, -1, 0)), Plane(origin=(-10, 0, 12), x_dir=(0, 0, 1), z_dir=(0, 1, 0))) as fillet1_piece_1:
        with BuildLine():
            CenterArc((10, -8), FILLET1_R, 126.869897646, 53.130102354)
            Line((0, -8), (0, 0))
            Line((0, 0), (4, 0))
        make_face()
    extrude(amount=2)

    # Sketch27 → Cut-Extrude13 (cut, through all)
    with BuildSketch(Plane(origin=(0, 0, 12), x_dir=(-1, 0, 0), z_dir=(0, 0, -1))):
        with Locations((0, 7)):
            Circle(SKETCH27_R)
    extrude(amount=-CUT_EXTRUDE13_DEPTH, mode=Mode.SUBTRACT)

    # Sketch28 → Cut-Extrude14 (cut)
    with BuildSketch(Plane.XY.offset(16)):
        with Locations((0, 7)):
            Circle(SKETCH28_R)
    extrude(amount=-CUT_EXTRUDE14_DEPTH, mode=Mode.SUBTRACT)

    # Sketch29 → Boss-Extrude12 (add)
    with BuildSketch(Plane.XY.offset(16).offset(BOSS_EXTRUDE12_START)):
        with Locations((0, 7)):
            Circle(SKETCH29_R)
        with Locations((0, 7)):
            Circle(SKETCH29_R_2, mode=Mode.SUBTRACT)
    extrude(amount=-BOSS_EXTRUDE12_DEPTH)


solid = part_3.part
